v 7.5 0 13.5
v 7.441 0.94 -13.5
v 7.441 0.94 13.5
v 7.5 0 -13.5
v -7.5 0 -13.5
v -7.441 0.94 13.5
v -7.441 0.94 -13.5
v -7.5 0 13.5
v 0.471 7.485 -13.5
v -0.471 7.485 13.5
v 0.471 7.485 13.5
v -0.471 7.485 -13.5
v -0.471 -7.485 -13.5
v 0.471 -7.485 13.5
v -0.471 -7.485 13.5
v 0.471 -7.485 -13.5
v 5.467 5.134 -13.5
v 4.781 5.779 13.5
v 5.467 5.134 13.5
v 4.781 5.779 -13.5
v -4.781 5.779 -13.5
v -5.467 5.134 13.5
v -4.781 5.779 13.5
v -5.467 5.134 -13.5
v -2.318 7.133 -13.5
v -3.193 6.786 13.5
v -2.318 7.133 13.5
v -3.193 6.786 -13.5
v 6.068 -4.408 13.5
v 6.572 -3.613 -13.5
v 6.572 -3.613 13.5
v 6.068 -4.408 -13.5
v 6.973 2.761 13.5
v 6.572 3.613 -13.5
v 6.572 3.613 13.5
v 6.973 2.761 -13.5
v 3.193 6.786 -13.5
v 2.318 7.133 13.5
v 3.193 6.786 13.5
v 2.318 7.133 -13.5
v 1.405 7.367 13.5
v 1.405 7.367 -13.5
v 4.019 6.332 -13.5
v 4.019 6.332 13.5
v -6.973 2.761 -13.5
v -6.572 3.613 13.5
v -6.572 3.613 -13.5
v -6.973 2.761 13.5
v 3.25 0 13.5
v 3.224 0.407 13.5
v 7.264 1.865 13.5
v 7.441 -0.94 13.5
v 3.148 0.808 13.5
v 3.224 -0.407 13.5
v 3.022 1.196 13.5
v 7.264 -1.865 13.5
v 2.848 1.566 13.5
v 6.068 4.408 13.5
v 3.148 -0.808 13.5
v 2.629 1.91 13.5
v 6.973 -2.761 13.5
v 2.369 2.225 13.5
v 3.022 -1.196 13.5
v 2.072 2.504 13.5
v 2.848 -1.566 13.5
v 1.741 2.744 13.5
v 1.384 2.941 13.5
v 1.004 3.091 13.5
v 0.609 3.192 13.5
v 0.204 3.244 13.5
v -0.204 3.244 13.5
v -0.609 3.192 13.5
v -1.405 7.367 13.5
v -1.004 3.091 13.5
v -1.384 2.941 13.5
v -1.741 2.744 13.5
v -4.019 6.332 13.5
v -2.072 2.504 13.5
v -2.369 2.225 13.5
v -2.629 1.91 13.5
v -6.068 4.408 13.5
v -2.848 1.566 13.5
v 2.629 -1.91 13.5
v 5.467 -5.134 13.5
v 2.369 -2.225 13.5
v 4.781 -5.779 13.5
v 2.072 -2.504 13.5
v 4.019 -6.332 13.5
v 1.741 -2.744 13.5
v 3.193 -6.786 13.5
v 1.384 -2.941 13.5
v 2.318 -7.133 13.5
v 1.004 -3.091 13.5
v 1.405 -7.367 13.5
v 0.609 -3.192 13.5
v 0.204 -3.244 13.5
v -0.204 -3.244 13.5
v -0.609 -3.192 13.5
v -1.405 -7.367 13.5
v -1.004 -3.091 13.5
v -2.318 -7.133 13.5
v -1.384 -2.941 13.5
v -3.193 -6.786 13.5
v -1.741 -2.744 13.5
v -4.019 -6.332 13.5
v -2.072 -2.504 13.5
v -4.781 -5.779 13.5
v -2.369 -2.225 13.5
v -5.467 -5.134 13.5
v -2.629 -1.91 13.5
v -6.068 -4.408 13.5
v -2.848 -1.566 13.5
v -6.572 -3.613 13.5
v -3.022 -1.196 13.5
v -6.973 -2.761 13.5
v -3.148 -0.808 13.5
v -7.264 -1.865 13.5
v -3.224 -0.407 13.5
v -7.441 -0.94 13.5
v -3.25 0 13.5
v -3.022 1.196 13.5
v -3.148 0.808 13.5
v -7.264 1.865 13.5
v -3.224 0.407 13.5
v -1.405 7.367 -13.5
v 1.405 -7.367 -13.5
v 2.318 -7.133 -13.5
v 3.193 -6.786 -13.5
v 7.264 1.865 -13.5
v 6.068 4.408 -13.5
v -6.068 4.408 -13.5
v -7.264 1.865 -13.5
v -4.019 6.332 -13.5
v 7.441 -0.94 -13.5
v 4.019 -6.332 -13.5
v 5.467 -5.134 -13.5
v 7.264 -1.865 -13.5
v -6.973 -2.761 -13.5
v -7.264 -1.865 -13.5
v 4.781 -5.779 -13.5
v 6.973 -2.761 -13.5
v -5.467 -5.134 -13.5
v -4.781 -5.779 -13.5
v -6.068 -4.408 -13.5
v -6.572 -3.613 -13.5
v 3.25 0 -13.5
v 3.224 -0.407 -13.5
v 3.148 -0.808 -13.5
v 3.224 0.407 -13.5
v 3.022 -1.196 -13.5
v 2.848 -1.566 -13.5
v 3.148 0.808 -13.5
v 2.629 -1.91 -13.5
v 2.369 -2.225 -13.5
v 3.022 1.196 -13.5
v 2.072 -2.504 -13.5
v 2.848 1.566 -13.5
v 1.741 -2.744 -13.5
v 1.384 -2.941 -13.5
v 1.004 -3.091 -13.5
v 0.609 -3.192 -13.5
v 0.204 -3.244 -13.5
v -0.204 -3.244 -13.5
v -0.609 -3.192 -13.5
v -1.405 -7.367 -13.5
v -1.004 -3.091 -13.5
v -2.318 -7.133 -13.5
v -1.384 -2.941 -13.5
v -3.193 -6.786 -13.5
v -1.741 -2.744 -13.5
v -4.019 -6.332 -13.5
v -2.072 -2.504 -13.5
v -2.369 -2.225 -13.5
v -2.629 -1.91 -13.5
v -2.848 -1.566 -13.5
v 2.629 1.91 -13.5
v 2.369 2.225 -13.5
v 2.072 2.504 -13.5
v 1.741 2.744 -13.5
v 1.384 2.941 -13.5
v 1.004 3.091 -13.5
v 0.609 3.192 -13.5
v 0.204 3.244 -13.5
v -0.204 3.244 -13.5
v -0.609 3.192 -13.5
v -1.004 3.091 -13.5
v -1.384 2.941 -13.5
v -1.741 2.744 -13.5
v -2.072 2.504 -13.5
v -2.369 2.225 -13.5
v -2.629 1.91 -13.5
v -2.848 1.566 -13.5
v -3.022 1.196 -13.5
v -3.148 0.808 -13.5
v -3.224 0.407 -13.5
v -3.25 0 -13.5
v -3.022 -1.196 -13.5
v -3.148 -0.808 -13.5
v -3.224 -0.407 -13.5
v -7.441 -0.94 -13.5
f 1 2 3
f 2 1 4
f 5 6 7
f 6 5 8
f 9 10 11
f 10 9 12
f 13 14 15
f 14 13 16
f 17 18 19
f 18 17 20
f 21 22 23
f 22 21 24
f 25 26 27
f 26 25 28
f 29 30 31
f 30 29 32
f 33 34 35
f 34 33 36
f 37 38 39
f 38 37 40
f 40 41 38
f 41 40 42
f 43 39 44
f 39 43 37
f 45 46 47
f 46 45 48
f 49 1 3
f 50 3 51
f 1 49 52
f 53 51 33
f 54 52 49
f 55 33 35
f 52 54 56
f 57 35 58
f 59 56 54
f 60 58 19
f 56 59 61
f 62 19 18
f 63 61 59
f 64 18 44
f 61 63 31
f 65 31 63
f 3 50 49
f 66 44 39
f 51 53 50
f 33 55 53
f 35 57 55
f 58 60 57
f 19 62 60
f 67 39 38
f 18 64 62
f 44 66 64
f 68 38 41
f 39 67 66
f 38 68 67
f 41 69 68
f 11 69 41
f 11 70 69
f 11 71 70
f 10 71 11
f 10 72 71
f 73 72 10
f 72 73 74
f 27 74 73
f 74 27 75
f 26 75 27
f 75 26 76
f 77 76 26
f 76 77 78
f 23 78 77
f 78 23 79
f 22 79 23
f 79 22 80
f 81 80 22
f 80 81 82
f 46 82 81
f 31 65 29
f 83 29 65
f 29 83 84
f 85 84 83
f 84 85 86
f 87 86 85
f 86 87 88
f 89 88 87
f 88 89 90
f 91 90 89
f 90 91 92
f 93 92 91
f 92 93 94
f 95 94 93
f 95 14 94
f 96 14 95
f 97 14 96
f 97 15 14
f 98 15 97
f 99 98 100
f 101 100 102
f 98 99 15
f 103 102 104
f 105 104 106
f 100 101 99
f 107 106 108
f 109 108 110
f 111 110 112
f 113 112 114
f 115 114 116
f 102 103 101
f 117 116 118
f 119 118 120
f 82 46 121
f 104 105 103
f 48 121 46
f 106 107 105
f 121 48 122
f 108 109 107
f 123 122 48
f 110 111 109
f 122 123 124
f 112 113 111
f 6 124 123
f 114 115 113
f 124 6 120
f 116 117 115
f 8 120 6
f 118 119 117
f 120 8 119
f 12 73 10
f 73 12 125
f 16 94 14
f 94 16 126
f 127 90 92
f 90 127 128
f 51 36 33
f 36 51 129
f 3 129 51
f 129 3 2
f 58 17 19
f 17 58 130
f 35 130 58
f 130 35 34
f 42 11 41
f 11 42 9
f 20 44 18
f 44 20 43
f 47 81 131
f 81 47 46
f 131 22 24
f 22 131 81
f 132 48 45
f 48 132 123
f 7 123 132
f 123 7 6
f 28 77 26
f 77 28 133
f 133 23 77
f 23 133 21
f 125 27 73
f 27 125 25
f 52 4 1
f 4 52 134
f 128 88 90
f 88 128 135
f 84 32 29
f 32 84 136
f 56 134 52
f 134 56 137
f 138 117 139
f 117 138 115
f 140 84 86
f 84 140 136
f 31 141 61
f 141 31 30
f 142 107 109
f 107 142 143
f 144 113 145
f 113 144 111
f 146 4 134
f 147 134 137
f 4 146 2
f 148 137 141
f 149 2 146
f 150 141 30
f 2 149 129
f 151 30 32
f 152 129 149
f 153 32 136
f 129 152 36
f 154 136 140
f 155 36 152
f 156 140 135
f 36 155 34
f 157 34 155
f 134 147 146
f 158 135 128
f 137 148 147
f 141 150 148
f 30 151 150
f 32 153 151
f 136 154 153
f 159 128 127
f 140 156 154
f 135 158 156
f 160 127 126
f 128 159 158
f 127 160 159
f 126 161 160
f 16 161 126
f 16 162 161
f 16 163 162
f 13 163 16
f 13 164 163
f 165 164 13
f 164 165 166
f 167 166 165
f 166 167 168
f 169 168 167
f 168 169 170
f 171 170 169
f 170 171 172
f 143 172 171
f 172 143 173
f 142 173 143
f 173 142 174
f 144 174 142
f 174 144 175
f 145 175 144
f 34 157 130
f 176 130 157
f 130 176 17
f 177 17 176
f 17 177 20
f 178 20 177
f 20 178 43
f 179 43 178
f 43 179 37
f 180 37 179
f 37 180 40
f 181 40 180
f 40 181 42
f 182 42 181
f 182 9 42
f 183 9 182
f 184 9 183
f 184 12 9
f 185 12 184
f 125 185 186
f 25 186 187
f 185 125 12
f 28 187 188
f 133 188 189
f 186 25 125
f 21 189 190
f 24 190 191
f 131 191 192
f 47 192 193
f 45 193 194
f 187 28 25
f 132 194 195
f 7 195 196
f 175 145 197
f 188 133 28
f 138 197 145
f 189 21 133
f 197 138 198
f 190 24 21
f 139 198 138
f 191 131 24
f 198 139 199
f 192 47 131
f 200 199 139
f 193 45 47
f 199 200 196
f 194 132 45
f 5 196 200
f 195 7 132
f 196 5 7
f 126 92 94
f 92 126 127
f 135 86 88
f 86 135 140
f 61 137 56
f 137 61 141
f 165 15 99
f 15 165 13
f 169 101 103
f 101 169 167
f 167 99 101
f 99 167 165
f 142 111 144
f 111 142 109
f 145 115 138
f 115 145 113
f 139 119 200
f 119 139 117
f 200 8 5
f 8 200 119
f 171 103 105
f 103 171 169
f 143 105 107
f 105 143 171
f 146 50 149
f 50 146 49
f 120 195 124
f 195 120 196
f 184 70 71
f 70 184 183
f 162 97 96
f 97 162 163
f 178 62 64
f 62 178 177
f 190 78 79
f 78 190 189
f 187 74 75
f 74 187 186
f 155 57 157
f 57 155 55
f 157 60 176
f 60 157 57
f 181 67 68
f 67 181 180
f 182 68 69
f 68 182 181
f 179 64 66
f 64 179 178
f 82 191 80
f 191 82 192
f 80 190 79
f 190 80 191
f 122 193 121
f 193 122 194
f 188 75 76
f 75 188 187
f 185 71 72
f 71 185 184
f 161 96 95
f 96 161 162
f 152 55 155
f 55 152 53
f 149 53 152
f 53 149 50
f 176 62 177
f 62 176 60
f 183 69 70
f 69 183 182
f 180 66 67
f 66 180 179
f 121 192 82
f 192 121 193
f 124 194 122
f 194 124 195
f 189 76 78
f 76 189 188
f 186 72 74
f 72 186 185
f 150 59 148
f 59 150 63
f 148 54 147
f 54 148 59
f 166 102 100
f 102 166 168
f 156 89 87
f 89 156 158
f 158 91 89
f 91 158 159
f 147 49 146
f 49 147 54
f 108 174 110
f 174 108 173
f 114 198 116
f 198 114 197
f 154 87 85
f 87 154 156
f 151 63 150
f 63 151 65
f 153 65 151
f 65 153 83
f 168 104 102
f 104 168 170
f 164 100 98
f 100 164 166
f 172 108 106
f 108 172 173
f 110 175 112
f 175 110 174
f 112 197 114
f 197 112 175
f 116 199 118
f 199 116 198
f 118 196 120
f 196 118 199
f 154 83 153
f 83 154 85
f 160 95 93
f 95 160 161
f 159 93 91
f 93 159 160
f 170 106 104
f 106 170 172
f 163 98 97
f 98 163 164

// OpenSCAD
$fn = 50;


difference() {
	union() {
		translate(v = [0, 0, -13.5000000000]) {
			cylinder(h = 27, r = 7.5000000000);
		}
	}
	union() {
		translate(v = [0, 0, -100.0000000000]) {
			cylinder(h = 200, r = 3.2500000000);
		}
	}
}
